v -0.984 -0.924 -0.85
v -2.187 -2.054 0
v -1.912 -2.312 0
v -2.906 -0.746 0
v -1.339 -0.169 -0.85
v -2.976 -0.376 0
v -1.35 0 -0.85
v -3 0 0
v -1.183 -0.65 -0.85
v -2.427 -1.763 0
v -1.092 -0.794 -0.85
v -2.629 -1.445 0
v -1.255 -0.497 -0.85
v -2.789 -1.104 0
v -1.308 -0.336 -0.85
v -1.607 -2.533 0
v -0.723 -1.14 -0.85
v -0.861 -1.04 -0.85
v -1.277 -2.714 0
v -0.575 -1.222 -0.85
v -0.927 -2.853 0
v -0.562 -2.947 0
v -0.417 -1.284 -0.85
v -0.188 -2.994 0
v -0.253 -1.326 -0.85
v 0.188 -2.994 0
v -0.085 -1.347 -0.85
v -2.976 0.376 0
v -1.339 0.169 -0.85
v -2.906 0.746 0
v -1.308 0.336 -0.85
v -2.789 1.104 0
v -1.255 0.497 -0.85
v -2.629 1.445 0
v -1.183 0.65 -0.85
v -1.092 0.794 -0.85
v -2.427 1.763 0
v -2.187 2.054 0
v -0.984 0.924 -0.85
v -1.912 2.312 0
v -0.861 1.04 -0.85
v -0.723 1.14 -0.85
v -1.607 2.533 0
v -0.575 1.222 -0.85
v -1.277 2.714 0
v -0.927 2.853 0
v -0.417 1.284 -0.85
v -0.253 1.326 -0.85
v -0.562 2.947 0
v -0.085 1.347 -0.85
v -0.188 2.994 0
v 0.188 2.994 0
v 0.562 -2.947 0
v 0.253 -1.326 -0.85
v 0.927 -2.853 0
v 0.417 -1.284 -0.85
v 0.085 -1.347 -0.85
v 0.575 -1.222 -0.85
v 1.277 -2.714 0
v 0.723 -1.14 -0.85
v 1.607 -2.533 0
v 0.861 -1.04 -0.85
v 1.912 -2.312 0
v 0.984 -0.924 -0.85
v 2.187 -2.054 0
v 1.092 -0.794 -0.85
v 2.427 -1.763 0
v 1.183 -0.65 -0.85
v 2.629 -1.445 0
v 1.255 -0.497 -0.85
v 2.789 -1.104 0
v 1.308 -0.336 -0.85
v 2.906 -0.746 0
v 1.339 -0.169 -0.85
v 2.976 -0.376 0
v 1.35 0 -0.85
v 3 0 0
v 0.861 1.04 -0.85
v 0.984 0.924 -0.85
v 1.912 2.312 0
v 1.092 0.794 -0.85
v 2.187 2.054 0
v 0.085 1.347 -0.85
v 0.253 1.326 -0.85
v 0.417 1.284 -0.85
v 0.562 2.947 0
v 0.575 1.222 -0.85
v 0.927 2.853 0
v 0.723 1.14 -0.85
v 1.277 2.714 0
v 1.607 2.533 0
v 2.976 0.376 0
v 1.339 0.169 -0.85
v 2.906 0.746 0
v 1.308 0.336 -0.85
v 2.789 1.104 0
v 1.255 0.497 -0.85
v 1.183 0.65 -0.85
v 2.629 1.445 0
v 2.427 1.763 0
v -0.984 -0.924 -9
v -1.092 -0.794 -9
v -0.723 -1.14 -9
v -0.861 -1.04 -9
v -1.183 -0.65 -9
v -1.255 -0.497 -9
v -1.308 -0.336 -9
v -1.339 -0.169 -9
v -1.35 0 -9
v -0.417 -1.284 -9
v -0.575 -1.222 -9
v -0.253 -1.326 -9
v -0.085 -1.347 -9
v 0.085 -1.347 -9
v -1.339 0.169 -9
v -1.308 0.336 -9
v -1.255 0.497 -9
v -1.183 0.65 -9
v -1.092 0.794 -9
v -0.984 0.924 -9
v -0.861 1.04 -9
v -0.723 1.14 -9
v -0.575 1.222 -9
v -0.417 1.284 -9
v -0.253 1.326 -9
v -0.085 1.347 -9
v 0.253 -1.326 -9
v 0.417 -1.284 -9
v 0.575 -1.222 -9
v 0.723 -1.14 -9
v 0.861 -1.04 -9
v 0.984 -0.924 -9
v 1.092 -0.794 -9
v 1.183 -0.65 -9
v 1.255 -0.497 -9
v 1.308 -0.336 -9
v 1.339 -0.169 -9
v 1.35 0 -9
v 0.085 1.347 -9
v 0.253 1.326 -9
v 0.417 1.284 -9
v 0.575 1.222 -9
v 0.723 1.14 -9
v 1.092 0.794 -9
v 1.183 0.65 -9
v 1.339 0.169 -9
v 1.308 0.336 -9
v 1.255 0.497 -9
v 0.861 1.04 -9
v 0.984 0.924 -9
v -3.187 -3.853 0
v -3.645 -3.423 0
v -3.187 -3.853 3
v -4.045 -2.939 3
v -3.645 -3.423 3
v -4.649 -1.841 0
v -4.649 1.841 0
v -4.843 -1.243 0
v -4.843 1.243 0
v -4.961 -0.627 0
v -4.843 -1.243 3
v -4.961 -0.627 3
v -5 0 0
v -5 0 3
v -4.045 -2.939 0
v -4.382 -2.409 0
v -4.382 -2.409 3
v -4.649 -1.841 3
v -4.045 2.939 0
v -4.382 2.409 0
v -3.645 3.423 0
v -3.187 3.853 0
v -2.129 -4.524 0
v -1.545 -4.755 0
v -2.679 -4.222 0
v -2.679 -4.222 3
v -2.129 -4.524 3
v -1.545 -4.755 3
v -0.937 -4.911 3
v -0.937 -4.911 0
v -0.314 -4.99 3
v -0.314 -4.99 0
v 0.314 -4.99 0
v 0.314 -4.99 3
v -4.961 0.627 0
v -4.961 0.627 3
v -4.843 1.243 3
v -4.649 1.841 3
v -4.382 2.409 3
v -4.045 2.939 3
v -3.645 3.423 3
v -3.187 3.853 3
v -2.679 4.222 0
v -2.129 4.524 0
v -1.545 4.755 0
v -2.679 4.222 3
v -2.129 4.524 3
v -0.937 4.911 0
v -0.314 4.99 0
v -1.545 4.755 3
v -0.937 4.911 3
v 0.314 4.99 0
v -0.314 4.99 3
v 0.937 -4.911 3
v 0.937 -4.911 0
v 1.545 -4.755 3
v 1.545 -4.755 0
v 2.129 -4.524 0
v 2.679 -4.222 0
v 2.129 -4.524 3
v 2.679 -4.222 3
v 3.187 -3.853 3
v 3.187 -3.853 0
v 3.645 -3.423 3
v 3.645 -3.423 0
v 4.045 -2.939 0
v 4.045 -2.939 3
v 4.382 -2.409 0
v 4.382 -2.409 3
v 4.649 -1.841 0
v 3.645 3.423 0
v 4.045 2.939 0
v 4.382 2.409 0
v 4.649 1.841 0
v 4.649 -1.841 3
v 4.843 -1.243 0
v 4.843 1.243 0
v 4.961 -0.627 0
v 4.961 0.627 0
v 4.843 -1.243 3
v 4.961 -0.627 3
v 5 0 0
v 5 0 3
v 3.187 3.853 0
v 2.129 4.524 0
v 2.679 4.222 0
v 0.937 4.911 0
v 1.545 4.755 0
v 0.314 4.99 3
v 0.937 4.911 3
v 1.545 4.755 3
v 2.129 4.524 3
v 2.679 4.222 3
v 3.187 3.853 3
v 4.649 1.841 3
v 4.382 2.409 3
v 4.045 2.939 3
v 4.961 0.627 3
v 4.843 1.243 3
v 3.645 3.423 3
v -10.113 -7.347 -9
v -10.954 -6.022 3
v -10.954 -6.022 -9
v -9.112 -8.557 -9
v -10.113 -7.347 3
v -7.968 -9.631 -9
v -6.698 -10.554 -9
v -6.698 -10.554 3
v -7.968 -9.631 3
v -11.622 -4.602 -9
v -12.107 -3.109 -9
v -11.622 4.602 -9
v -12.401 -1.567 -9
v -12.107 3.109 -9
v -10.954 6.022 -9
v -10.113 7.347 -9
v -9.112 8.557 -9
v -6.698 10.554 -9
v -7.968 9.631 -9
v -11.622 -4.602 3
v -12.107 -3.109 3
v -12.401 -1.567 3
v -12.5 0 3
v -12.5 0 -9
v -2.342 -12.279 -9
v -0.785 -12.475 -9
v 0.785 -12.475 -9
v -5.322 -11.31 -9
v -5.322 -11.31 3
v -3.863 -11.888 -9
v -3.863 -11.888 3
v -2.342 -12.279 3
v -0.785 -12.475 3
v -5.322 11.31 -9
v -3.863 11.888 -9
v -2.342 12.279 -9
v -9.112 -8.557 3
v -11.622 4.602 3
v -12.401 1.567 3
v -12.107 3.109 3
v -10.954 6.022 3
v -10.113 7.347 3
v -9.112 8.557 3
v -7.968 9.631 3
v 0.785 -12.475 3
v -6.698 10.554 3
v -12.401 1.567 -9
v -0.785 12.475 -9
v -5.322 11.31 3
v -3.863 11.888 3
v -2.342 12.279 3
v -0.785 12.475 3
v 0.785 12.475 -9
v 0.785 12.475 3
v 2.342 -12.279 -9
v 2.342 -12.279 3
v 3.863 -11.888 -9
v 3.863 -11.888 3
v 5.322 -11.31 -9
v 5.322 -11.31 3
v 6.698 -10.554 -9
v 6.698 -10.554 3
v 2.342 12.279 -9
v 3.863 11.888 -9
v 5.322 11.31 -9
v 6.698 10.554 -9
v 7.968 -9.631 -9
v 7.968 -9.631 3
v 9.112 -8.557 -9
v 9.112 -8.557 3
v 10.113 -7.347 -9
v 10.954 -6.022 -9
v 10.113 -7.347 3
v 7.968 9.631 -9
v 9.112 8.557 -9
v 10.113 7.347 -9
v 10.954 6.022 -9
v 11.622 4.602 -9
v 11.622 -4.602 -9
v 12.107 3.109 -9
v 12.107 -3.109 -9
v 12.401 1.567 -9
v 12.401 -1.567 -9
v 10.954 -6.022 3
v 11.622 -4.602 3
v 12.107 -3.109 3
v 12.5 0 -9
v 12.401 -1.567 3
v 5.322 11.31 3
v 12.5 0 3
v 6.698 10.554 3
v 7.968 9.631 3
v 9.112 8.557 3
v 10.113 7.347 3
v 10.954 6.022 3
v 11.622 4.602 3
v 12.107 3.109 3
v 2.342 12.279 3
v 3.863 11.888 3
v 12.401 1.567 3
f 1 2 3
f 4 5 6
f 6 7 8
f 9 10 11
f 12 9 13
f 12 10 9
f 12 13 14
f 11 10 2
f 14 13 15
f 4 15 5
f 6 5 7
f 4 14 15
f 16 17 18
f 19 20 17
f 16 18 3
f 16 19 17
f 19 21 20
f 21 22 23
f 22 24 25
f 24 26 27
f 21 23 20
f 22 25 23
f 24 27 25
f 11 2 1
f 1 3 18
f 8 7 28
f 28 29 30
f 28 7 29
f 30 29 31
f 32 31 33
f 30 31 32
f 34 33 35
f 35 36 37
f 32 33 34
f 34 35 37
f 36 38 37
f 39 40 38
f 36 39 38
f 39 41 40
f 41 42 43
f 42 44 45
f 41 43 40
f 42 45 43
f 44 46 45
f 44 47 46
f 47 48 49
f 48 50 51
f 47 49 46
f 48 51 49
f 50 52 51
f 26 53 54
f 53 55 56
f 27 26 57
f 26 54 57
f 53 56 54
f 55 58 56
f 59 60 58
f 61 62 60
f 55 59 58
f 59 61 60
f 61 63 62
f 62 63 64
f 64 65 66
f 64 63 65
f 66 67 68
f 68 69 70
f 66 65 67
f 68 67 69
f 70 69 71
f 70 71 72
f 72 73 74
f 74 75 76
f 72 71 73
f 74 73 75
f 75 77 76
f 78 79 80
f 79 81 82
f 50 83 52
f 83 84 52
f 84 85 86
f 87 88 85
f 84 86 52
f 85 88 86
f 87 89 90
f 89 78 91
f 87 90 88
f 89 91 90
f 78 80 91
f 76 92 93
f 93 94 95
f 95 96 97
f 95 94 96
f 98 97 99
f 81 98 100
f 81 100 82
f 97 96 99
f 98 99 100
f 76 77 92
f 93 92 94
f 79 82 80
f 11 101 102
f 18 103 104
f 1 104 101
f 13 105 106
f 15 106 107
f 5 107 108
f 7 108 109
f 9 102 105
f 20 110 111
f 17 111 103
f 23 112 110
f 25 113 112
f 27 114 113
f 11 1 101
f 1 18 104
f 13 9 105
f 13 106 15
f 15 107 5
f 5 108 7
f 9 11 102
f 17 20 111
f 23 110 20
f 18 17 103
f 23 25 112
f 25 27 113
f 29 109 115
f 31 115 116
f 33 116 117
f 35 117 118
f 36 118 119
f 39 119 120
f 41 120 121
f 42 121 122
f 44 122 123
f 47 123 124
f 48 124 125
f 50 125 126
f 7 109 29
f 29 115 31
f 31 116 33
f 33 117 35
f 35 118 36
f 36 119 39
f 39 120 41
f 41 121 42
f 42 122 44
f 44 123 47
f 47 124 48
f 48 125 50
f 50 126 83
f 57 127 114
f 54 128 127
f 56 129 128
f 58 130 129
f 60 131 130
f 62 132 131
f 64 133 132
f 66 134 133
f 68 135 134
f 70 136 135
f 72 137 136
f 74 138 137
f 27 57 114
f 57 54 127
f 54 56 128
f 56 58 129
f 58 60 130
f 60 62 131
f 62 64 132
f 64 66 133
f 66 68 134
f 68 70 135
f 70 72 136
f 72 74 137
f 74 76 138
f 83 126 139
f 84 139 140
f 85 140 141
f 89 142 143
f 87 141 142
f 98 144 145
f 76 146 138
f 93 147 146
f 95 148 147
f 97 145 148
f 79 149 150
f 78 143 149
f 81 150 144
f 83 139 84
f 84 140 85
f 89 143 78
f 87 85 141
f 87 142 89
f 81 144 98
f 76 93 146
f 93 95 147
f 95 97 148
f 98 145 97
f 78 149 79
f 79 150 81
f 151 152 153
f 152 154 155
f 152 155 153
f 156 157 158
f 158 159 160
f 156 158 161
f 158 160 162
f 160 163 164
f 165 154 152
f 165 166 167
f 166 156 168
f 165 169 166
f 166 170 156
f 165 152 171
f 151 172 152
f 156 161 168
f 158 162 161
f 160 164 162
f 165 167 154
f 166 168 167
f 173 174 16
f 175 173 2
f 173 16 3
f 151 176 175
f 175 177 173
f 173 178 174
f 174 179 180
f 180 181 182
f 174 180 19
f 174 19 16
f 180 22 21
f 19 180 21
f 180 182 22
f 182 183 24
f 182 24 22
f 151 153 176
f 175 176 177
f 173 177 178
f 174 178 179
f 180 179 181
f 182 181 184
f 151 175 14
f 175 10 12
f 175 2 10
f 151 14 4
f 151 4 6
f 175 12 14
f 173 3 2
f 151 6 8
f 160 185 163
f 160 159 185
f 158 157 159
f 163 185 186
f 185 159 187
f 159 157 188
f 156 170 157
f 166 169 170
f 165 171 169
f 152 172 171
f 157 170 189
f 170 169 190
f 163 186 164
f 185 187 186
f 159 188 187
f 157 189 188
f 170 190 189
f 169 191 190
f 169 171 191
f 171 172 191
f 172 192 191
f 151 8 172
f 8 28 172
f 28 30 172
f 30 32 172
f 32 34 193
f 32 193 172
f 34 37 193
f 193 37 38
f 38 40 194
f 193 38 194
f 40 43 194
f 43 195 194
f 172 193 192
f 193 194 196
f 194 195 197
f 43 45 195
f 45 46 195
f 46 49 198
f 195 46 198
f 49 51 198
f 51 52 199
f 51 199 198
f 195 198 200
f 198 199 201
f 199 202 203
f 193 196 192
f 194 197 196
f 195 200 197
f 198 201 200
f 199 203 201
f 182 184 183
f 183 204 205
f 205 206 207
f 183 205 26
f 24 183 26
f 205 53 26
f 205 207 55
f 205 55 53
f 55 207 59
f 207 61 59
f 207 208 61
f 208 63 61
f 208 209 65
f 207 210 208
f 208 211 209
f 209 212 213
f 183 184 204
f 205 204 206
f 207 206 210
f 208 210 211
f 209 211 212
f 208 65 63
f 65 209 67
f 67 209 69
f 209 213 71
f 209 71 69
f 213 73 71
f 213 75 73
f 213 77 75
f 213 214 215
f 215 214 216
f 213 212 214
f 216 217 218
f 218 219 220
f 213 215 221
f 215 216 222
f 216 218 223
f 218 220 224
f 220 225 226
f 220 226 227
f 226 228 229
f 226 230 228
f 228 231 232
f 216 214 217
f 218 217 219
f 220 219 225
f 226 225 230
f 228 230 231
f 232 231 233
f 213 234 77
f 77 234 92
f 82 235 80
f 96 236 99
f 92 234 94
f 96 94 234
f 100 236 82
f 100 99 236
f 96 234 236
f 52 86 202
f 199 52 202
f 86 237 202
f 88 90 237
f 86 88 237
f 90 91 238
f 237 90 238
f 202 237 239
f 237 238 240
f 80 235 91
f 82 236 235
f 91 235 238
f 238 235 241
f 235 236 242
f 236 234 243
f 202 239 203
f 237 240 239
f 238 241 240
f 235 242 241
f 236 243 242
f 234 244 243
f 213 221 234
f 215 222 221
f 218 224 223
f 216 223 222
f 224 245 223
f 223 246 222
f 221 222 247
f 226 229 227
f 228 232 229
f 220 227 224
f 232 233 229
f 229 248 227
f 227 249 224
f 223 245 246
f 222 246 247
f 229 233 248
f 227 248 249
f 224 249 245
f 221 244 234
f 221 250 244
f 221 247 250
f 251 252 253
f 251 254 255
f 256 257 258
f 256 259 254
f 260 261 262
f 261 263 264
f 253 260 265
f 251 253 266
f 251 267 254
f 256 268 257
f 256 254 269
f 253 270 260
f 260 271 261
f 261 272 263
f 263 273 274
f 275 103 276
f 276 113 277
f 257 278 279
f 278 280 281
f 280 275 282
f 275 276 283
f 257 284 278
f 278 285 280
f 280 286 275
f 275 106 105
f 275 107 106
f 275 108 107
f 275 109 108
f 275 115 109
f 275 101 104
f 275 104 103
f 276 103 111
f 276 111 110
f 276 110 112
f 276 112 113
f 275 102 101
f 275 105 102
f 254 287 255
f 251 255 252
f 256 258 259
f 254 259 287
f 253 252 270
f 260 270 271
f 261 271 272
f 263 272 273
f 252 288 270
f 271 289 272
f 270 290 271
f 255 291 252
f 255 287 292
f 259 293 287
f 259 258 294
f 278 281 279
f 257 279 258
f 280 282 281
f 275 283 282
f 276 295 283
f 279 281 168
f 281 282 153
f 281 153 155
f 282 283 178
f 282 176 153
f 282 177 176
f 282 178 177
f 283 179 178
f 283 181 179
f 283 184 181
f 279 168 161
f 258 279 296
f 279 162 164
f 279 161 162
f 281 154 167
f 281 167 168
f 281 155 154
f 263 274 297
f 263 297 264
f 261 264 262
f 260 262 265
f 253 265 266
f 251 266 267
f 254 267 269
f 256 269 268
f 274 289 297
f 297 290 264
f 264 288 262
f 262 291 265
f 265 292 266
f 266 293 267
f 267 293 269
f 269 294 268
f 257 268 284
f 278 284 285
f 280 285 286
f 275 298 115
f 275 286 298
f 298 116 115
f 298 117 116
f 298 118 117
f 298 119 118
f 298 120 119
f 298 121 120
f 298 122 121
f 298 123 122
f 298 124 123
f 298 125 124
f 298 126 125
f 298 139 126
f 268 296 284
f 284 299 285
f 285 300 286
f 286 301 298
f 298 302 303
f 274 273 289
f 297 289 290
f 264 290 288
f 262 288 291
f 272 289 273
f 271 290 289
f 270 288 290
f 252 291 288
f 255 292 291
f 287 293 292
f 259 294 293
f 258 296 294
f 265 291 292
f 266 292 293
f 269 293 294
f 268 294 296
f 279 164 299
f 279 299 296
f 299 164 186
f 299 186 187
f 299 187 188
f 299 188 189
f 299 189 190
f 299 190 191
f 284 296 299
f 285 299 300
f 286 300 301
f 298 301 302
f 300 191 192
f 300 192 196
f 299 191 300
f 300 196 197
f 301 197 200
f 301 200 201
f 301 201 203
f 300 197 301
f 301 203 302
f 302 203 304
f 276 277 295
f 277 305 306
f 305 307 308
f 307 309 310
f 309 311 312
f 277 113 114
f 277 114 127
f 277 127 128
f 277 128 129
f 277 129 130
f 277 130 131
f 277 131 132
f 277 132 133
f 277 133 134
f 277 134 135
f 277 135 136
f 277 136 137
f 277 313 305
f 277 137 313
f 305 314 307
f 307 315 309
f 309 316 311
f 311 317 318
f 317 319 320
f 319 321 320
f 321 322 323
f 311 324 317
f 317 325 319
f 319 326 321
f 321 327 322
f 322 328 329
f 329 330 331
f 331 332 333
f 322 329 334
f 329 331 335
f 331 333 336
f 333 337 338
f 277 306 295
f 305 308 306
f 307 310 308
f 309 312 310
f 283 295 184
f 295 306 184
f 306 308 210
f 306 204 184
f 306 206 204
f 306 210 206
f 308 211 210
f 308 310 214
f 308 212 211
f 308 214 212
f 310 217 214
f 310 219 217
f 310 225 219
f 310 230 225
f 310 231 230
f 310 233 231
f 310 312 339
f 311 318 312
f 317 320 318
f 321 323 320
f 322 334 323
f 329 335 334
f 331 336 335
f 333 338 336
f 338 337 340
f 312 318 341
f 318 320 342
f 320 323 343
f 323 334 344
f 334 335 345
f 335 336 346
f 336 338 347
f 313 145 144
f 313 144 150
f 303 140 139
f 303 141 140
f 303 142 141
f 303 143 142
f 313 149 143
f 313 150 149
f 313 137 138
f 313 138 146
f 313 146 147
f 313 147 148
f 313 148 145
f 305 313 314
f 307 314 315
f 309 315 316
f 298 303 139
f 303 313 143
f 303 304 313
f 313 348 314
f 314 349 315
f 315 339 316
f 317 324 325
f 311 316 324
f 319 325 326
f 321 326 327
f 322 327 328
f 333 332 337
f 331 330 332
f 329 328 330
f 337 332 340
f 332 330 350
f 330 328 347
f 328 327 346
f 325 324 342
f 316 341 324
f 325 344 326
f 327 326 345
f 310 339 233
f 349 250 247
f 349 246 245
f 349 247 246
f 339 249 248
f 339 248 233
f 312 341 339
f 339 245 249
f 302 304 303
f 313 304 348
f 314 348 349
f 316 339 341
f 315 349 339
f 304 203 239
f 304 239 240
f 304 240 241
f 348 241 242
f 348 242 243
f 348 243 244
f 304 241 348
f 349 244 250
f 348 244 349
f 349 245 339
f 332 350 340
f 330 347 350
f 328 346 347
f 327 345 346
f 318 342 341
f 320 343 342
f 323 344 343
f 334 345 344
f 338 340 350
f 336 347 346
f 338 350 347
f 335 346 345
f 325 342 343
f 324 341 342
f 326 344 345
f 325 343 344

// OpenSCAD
$fn = 50;

difference() {
	union() {
		translate(v = [0, 0, -9.0]) {
			cylinder(h = 12, r = 12.5);
		}
	}
	union() {
		translate(v = [0, 0, 0]) {
			rotate(a = [0, 0, 0]) {
				difference() {
					union() {
						translate(v = [0, 0, -12.0]) {
							cylinder(h = 12, r = 1.0);
						}
						translate(v = [0, 0, -0.85]) {
							cylinder(h = 0.85, r1 = 1.35, r2 = 3.0);
						}
						translate(v = [0, 0, -12.0]) {
							cylinder(h = 12, r = 1.35);
						}
						translate(v = [0, 0, -12.0]) {
							cylinder(h = 12, r = 1.0);
						}
					}
					union();
				}
			}
		}
		#cylinder(h = 3, r = 5.0);
	}
}
